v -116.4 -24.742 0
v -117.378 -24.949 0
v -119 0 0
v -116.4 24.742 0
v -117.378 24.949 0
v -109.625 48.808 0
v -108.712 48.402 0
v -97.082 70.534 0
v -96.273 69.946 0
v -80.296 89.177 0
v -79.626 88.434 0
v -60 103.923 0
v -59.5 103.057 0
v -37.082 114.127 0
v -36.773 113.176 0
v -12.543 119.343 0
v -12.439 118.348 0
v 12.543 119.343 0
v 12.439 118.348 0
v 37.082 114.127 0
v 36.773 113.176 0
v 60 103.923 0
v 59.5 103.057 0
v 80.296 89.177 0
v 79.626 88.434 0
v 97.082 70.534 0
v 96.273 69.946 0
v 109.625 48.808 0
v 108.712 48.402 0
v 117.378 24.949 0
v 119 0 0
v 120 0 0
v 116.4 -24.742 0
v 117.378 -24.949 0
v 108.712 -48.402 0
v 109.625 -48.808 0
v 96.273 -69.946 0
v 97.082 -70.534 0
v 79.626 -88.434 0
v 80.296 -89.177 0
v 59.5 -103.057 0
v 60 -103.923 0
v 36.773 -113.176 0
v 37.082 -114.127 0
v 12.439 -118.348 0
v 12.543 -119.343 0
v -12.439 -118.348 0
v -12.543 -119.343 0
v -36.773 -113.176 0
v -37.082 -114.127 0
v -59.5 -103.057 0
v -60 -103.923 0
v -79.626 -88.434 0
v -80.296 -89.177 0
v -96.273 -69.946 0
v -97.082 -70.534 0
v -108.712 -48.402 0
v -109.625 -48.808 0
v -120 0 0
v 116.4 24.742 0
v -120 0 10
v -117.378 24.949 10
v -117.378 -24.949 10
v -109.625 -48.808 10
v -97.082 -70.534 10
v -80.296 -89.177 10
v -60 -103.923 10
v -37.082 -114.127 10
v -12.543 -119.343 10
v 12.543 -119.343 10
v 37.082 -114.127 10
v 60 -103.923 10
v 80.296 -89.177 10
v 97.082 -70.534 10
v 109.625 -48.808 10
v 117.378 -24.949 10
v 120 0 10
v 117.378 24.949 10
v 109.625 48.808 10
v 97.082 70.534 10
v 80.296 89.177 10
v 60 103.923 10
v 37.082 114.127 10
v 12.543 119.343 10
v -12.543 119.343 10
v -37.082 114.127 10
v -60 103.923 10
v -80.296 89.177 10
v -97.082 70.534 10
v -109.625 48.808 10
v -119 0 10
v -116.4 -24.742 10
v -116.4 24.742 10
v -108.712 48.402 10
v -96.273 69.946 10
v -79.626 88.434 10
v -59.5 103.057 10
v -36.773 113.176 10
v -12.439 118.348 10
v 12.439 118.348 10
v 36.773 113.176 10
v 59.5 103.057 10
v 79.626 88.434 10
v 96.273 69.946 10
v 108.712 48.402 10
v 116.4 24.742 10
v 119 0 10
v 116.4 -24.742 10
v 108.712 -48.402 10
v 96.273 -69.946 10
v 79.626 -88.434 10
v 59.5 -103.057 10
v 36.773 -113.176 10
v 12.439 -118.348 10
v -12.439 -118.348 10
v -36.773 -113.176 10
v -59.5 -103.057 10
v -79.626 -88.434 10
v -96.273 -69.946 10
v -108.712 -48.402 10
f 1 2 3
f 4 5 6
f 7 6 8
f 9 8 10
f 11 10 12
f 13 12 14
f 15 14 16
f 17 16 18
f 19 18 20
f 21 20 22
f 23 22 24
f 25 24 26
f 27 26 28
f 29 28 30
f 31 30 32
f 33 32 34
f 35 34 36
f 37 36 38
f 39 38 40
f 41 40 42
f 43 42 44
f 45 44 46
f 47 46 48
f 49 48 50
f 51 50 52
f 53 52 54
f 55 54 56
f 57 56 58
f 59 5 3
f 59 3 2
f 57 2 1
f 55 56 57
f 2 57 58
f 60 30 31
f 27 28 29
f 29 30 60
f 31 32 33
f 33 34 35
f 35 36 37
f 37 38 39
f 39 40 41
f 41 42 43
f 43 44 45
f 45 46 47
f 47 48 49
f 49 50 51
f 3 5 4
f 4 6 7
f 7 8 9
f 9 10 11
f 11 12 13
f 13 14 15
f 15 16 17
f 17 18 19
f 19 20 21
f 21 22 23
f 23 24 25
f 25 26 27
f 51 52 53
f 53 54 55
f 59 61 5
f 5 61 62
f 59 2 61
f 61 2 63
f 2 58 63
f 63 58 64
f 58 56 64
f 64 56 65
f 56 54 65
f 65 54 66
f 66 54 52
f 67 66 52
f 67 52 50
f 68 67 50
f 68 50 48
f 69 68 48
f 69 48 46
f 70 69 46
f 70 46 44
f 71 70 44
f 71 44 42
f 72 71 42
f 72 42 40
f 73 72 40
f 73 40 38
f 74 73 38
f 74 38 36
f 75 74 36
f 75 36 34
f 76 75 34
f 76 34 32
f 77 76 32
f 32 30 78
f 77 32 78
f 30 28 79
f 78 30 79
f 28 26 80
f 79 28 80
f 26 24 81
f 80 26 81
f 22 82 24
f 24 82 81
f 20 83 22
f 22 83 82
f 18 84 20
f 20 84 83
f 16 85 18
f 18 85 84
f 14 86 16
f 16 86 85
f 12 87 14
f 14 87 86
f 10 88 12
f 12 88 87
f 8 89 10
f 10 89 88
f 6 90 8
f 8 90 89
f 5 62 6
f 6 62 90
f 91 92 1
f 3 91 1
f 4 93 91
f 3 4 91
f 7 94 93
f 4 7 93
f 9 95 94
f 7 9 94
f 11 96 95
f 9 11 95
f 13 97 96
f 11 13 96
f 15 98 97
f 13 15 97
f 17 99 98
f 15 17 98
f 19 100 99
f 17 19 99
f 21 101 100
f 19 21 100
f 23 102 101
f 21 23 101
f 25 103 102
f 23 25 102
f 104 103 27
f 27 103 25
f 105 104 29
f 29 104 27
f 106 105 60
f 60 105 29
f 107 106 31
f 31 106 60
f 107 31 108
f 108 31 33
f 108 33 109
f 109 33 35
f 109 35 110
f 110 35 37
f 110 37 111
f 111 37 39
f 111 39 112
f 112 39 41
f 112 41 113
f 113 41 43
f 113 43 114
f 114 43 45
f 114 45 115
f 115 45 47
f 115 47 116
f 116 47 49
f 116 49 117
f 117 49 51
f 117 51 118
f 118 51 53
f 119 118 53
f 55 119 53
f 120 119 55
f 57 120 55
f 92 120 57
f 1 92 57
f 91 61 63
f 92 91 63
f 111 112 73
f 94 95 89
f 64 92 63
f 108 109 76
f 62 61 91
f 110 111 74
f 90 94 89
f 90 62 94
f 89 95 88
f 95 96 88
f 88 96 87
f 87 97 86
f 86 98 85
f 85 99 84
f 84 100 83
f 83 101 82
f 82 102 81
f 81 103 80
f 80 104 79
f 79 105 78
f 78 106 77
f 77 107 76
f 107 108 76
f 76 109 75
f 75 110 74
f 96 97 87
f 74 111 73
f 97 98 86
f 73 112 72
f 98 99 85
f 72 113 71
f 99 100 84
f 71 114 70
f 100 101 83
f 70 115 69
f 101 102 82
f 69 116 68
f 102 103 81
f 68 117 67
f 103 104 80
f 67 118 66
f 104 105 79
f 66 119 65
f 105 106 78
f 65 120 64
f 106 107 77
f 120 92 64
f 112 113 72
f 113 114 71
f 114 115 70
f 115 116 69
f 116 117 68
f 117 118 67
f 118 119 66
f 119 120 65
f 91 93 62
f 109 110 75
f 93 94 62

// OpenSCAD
difference (){
	cylinder (r=120,h=10);
	cylinder (r=119,h=10);
}
